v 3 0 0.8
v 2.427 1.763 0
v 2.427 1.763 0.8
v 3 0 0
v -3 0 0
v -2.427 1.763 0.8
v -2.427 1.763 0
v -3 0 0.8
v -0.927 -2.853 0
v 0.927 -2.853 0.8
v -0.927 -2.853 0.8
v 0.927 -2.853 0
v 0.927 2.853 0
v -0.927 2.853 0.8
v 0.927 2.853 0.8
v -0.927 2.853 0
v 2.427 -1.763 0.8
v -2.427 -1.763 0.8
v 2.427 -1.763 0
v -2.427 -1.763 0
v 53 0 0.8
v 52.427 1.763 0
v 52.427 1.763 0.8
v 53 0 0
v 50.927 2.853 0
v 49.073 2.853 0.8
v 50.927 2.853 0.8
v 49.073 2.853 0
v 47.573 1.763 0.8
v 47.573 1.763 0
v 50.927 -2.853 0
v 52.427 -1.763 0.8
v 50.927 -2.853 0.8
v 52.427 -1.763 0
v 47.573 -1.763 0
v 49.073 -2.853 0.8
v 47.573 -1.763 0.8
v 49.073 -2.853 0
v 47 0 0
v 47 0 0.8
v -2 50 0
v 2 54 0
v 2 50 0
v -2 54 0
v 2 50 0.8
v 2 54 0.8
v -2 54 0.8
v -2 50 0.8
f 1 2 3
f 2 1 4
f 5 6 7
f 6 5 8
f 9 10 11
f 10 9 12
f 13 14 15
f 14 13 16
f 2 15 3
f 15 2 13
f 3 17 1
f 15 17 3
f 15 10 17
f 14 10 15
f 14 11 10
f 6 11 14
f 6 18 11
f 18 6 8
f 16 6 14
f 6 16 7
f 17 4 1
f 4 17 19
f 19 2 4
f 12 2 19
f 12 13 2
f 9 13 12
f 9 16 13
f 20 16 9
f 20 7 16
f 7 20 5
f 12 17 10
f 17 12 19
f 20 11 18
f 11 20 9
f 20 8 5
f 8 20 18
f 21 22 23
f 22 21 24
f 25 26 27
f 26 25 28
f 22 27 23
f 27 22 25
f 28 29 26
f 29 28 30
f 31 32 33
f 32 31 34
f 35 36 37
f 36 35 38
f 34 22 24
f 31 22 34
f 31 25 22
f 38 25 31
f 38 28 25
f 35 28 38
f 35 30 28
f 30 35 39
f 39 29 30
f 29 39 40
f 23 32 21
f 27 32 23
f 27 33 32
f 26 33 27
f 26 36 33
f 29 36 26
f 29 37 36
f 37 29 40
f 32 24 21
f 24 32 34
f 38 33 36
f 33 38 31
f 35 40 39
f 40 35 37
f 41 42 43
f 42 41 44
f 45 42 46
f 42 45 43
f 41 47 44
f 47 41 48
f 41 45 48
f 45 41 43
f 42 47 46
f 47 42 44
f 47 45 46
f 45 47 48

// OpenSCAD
cylinder(0.8, 3,3);

translate([50,0,0])
	cylinder(0.8, 3,3);

translate([-2,50,0])
	linear_extrude(0.8)
		square(4);
